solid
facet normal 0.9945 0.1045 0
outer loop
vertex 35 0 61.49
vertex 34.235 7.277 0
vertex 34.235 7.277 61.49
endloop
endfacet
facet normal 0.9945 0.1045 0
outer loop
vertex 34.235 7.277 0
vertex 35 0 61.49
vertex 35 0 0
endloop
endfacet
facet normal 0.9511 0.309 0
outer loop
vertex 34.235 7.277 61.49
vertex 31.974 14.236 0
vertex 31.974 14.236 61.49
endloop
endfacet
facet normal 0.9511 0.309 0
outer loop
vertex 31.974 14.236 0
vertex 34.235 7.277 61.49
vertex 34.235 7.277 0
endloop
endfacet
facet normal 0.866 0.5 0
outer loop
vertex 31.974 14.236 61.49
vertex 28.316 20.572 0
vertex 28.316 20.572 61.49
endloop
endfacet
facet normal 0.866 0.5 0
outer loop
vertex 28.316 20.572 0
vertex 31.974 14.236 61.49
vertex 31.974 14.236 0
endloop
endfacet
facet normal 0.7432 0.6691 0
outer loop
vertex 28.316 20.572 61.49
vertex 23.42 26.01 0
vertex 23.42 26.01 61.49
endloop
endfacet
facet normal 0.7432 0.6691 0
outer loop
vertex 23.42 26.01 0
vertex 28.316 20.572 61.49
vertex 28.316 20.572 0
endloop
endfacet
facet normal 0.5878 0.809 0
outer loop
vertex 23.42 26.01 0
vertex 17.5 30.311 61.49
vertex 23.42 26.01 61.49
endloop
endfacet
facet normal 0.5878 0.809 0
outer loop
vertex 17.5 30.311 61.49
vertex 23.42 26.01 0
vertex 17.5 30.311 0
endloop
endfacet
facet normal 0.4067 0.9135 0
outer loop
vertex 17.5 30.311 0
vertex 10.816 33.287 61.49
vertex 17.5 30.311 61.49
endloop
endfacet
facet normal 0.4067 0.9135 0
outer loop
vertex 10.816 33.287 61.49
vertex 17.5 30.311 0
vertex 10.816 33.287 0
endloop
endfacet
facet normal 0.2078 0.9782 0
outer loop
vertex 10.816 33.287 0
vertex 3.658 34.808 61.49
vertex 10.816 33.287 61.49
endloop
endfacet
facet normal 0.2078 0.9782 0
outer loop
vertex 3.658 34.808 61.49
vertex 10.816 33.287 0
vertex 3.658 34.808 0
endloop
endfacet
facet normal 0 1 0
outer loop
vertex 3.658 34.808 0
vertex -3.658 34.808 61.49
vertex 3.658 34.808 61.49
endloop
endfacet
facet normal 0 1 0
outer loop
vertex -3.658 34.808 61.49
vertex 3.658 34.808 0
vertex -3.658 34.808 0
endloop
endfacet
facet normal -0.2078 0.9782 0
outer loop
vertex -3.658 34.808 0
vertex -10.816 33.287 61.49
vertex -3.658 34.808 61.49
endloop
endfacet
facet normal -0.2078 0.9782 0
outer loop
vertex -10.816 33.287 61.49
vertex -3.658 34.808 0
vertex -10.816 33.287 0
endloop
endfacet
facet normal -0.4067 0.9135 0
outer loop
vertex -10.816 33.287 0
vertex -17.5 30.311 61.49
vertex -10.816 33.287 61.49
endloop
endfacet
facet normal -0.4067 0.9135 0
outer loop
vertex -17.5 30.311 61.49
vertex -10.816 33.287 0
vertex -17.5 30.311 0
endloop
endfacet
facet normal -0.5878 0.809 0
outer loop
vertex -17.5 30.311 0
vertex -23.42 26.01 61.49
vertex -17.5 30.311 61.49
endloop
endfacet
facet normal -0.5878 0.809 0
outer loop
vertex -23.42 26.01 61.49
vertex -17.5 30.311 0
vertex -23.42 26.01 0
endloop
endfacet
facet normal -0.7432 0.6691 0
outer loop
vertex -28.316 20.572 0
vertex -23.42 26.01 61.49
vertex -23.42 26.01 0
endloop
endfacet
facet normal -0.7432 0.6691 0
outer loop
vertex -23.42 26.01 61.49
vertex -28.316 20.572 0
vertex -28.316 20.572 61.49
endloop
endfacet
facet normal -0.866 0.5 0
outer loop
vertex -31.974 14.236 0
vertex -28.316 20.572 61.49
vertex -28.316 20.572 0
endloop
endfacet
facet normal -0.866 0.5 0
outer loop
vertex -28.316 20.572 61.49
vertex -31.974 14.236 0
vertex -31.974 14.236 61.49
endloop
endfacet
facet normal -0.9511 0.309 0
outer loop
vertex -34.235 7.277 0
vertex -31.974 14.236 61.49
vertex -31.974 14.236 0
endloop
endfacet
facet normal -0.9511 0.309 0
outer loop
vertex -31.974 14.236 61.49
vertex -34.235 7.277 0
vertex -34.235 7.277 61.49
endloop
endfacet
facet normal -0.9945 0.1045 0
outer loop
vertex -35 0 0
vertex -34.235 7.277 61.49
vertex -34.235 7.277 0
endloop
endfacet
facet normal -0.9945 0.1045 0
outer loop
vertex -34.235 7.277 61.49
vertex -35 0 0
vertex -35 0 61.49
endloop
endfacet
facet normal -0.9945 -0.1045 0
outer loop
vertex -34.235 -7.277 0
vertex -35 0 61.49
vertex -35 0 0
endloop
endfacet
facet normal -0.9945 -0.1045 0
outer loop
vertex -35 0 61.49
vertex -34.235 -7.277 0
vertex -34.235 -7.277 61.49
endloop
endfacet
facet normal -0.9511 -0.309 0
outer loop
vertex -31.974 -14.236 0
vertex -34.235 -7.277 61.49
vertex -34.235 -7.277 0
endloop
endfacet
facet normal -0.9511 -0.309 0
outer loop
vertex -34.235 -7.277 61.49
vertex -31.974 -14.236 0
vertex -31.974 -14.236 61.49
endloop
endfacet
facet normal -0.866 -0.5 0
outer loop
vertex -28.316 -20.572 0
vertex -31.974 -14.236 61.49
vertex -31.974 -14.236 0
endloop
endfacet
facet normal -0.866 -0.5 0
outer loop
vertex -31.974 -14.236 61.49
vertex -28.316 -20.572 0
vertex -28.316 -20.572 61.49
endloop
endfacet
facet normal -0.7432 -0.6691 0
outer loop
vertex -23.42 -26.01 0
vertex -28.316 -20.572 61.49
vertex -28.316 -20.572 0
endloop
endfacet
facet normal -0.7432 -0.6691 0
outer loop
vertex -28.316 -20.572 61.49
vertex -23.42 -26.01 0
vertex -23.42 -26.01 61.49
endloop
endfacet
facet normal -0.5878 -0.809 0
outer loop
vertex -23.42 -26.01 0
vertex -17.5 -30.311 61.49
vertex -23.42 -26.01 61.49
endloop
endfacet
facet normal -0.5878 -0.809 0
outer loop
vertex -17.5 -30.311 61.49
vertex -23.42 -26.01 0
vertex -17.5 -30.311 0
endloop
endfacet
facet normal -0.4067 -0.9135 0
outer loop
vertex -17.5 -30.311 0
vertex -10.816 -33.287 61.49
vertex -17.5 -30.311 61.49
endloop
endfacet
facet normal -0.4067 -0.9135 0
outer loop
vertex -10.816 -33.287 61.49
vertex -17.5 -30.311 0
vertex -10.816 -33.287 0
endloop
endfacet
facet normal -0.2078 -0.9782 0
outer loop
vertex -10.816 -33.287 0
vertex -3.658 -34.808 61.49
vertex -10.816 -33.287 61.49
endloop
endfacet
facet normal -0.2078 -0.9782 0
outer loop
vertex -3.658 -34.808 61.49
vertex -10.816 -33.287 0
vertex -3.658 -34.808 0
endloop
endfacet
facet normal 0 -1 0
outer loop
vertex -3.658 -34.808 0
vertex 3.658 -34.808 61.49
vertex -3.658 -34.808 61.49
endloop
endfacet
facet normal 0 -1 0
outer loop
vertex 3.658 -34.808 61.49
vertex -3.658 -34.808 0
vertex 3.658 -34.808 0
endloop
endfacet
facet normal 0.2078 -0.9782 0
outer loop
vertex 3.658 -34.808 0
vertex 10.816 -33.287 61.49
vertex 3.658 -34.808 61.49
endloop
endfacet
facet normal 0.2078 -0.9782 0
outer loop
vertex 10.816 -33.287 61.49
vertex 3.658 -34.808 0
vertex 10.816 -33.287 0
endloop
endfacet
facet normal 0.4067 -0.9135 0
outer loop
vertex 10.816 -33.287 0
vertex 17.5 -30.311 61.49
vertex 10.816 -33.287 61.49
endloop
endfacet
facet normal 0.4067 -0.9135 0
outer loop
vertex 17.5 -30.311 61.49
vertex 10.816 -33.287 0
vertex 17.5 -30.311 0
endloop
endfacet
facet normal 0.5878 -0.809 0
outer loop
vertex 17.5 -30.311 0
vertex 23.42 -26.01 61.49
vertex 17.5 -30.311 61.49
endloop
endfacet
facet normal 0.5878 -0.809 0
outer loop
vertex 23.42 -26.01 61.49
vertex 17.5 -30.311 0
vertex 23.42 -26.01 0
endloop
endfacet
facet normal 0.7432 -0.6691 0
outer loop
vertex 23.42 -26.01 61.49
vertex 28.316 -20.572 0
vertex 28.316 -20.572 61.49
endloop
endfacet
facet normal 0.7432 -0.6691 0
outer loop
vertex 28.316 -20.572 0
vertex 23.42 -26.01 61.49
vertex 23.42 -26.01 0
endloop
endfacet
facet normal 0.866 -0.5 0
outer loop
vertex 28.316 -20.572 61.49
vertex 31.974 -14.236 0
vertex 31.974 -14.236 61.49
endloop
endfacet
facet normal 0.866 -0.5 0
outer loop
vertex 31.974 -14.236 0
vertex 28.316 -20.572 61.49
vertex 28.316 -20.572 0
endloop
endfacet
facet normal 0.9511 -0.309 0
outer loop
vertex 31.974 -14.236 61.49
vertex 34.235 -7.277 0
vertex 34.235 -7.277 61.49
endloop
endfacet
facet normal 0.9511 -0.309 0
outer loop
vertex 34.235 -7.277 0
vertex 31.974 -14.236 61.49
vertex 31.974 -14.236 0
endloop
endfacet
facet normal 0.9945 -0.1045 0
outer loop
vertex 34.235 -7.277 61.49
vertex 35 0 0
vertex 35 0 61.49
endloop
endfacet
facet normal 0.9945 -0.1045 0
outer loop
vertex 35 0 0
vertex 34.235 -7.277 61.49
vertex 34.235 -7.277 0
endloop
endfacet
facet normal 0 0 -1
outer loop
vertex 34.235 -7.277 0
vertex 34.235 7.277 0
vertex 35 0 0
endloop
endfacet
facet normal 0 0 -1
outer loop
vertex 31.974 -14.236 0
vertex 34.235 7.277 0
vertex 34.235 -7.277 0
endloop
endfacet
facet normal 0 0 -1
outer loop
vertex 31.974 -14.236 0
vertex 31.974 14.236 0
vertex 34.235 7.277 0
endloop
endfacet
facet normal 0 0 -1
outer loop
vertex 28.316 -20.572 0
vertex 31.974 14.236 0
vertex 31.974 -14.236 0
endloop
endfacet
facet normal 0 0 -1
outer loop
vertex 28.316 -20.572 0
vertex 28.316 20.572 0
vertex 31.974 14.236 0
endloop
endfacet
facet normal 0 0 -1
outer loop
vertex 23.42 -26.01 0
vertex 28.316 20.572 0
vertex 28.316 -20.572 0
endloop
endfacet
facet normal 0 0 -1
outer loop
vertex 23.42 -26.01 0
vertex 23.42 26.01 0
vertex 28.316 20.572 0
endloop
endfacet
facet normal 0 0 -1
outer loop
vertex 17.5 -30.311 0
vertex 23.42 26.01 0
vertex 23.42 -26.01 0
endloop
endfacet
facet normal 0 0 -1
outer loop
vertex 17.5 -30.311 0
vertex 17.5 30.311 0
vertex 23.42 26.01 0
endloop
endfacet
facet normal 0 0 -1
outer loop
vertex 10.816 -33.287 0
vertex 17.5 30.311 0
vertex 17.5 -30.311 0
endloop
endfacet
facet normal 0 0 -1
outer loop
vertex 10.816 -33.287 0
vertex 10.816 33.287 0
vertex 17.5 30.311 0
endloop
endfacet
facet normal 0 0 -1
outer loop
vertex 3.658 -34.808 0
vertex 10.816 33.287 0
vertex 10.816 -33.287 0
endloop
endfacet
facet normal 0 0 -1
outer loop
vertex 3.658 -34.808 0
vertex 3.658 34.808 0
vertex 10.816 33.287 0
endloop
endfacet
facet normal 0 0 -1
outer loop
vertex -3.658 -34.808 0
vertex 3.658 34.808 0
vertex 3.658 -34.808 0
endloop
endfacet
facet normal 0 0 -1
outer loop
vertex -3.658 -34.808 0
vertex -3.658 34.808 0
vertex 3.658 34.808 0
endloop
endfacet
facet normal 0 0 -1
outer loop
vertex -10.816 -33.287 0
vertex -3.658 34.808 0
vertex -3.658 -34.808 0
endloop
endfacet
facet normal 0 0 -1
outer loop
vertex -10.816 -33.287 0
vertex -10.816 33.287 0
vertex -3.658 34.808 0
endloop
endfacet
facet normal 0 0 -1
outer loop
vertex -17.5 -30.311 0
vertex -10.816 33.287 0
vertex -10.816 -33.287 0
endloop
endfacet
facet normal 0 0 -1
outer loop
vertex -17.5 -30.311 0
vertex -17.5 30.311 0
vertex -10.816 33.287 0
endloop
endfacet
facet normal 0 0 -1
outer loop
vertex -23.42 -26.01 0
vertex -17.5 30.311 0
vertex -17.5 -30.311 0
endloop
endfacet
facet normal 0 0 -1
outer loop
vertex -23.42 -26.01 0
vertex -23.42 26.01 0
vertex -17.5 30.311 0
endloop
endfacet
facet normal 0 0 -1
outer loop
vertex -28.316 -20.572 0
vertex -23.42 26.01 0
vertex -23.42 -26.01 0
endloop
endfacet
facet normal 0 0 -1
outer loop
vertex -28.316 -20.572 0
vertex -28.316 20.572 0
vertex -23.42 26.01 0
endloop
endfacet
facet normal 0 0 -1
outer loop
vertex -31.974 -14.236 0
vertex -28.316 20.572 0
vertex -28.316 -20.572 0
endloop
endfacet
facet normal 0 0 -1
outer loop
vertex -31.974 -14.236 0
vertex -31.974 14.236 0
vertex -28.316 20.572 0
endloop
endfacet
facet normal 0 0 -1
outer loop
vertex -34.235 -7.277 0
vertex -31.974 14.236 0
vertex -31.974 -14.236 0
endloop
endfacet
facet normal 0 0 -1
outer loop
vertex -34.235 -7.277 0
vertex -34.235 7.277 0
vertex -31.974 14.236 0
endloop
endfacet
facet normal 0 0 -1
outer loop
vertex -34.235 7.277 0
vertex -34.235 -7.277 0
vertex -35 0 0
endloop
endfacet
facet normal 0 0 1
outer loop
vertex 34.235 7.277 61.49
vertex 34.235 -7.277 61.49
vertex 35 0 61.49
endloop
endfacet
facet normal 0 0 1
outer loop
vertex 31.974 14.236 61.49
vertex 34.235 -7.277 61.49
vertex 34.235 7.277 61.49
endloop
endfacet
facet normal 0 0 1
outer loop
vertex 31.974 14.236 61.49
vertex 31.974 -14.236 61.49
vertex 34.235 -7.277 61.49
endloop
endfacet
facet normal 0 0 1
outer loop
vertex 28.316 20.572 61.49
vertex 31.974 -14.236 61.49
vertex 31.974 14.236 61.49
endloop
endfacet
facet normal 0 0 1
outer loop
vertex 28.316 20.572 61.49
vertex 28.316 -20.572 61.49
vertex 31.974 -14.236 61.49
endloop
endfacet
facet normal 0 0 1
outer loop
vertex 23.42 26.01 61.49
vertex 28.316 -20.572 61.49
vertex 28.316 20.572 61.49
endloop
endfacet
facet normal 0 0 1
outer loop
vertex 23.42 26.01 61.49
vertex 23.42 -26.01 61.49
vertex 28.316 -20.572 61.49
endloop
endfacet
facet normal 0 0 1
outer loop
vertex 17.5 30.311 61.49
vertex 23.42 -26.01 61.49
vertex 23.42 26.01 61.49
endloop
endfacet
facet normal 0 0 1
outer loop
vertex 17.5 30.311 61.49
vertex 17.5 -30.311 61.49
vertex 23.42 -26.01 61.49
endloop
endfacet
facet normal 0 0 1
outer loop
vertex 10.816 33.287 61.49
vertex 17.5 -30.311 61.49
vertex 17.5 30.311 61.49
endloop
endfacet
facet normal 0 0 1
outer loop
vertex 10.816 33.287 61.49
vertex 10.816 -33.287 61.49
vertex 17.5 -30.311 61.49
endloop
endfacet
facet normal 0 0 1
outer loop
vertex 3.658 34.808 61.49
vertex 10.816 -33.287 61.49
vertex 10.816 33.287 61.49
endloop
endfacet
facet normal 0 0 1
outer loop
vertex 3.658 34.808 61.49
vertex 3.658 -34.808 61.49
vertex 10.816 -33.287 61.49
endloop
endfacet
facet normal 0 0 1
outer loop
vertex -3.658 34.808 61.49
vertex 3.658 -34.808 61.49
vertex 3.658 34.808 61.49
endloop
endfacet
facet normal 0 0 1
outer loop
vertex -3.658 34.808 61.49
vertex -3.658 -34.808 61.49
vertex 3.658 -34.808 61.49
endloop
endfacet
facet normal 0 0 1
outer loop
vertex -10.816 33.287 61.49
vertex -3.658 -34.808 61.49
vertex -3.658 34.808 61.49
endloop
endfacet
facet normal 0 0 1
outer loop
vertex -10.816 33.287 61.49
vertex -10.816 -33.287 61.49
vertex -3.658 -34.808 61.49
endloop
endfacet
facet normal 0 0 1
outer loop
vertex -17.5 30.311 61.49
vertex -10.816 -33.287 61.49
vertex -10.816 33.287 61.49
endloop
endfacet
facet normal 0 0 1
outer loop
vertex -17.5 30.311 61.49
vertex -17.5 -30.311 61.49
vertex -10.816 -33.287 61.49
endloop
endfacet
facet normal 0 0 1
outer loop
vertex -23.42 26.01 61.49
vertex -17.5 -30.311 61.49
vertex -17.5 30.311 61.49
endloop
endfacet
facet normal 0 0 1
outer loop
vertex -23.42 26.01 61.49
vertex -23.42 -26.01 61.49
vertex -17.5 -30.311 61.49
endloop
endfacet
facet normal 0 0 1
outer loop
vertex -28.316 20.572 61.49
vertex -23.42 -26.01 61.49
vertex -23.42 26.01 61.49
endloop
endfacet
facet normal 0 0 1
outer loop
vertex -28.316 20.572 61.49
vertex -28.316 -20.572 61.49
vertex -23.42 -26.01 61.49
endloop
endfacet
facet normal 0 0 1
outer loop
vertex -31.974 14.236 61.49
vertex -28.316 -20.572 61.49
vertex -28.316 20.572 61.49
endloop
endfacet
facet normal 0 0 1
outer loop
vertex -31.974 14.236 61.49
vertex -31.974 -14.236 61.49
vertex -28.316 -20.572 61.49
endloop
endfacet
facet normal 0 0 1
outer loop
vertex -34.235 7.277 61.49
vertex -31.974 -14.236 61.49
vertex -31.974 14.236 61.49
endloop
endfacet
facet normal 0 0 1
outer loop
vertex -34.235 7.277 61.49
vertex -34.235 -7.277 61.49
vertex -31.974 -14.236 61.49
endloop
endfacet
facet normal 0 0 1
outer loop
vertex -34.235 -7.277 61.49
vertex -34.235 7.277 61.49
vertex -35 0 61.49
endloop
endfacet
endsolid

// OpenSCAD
/* doodle-meta {"version":1,"parameters":{"hex_radius":{"label":"Hexagon Circumradius","description":"Radius from center to vertex of the hexagonal cross-section","unit":"mm","feature":"hex_profile"},"height":{"label":"Prism Height","description":"Extrusion height of the hexagonal prism along Z","unit":"mm","feature":"prism_height"}},"features":{"hex_profile":{"kind":"region","label":"Hexagonal Cross-Section","min":[0,0,0],"max":[{"parameter":"hex_radius","scale":2},{"parameter":"hex_radius","scale":1.732},{"parameter":"height"}]},"prism_height":{"kind":"dimension","axis":"z","label":"Prism Height"}}} */

// Parameters
hex_radius = 35.0; // Circumradius (distance from center to vertex)
height = 61.49;    // Height of the prism (Z-axis)

// Derived dimensions
// For a regular hexagon with circumradius R:
// Width (flat-to-flat) = R * sqrt(3)
// Depth (vertex-to-vertex) = 2 * R
// The front view constrains X (width) and Z (height).
// The right view constrains Y (depth) and Z (height).
// Given max_width = 70, max_depth = 69.51, max_height = 61.49.
// If we orient the hexagon with vertices along X and Y axes (pointy-top in XY plane):
// X extent = 2 * R. If 2*R = 70, R = 35.
// Y extent = R * sqrt(3) = 35 * 1.732 = 60.62. This doesn't match depth 69.51 well.
// If we orient with flats along X and Y axes (flat-top in XY plane):
// X extent = R * sqrt(3). If R*sqrt(3) = 70, R = 40.4.
// Y extent = 2 * R = 80.8. Too big.
// Let's look at the "measured_view_geometry" and "derived_sizes".
// derived_sizes: width_mm=70, depth_mm=69.51, height_mm=61.49.
// The object is described as a "Hex prism handle".
// The front view shows the hexagonal profile. The right view shows the side profile.
// Both views show a hexagon-like shape.
// If the front view is the hexagonal face, then the prism is extruded along Y?
// No, standard convention: Front view looks down Y. Top view looks down Z. Right view looks down X.
// If Front view shows the hexagon, the hexagon is in the XZ plane?
// But the construction plan says: "extrude ... profile_plane: XY ... direction_axis: Z".
// This implies the hexagon is in the XY plane (Top view would show it).
// However, the "views" list says:
// Front view constrains "Cross-sectional profile (XY plane)". This is contradictory to standard projection where Front is XZ.
// Let's re-read carefully: "Front view ... constrains Cross-sectional profile (XY plane)".
// Usually, if Front view shows the cross-section, the object is lying on its side or the view definition is non-standard.
// BUT, the construction plan explicitly says: `profile_plane: "XY"`, `direction_axis: "Z"`.
// This means the hexagon is in the XY plane, and we extrude up Z.
// So the Top view (looking down Z) would show the hexagon.
// The Front view (looking down Y) would show the side of the prism.
// The Right view (looking down X) would show the side of the prism.
// The provided "measured_view_geometry" has `view_1` as "front" and `view_2` as "right".
// Both `view_1` and `view_2` have `outer_profile` with 6 vertices (hexagon).
// If the Front view (looking down Y) shows a hexagon, then the hexagon is in the XZ plane.
// If the Right view (looking down X) shows a hexagon, then the hexagon is in the YZ plane.
// A solid that is a hexagon in Front (XZ) and Hexagon in Right (YZ) is likely a hexagonal prism oriented along Y? Or a complex shape?
// Wait, the `construction_plan` says `profile_plane: "XY"`. This contradicts the view descriptions if the views show hexagons.
// Let's look at `intent_refinements`. It says `outer_profile_ideal: "circle"` for both views.
// And `specification` says "Hex prism handle".
// And `uncertainties` say "The specific orientation of the hexagon... is inferred from the front view geometry."
// If the Front view shows the hexagon, the hexagon is in the XZ plane.
// If the Right view shows the hexagon, the hexagon is in the YZ plane.
// This implies the object might be a hexagonal prism along the Y axis?
// If it's a prism along Y, the Front view (XZ) shows the hexagon. The Right view (YZ) shows the rectangle side.
// But the Right view ALSO shows a hexagon in the measured data.
// This suggests the object is a hexagonal prism where the axis is along... ?
// If Front (XZ) is hex and Right (YZ) is hex, it's not a simple prism along one axis.
// However, `construction_plan` is authoritative for generation: `extrude ... profile_plane: "XY" ... direction_axis: "Z"`.
// This means we create a hexagon in XY and extrude along Z.
// If we do this, the Top view (XY) is the hexagon.
// The Front view (XZ) is a rectangle (or trapezoid depending on orientation).
// The Right view (YZ) is a rectangle.
// The measured views showing hexagons might be misinterpreted or the "Front" view in the data actually corresponds to the Top view in standard terms, or the object is rotated.
// Given the conflict, I will follow the `construction_plan` which is the explicit instruction for geometry generation: Extrude a hexagon from XY along Z.
// The dimensions provided are:
// max_width (X) = 70
// max_depth (Y) = 69.51
// max_height (Z) = 61.49
// If the hexagon is in XY, its extents are X and Y.
// A regular hexagon has width and depth related by sqrt(3).
// If oriented with vertices on X and Y axes (pointy-top):
// X_max = 2*R, Y_max = R*sqrt(3).
// If oriented with flats on X and Y axes (flat-top):
// X_max = R*sqrt(3), Y_max = 2*R.
// Let's check the ratios.
// 70 / 69.51 ≈ 1.007. Almost square.
// A regular hexagon is never square (ratio is 1.732 or 0.577).
// This implies the "hexagon" might be irregular, or the views are not showing the true cross-section, or the "hexagon" is actually a circle (intent_refinements says "circle").
// `intent_refinements` says `outer_profile_ideal: "circle"`.
// If it's a circle, X=70, Y=69.51, Z=61.49.
// But the object name is "Hex prism handle".
// And `specification` says "Regular hexagon shape".
// If it's a regular hexagon, the width/depth ratio must be sqrt(3) or 1/sqrt(3).
// The measured 70/69.51 is very close to 1. This is contradictory for a regular hexagon.
// However, `derived_sizes` says `width_mm: 70.0`, `depth_mm: 69.51`.
// Maybe the hexagon is rotated?
// If we assume the `construction_plan` is correct (Extrude XY along Z), and the intent is a hexagon, but the measurements are nearly square...
// Perhaps the "Front" view in the data is actually the Top view?
// If View 1 (Front) is the hexagon, and View 2 (Right) is the hexagon...
// Let's trust the `construction_plan` for the topology: Hexagon in XY, extruded along Z.
// I will define the hexagon to fit the X and Y bounds.
// Since a regular hexagon cannot have X≈Y, I will prioritize the "Hex prism" description and use a regular hexagon that fits the larger dimension, or scale it.
// Actually, looking at `uncertainties`: "The exact height of the prism is inferred to be equal to the width...".
// Let's assume the standard "Hex Nut" style orientation: Flat sides parallel to X and Y? No, that gives ratio sqrt(3).
// Let's assume the hexagon is defined by the circumradius R.
// If we want to fit 70x69.51, we can't do it with a regular hexagon.
// I will use the `intent_refinements` hint "circle" as a fallback for shape regularization if the hexagon doesn't fit, BUT the prompt says "model ideal_shape forms exactly... circle -> cylinder".
// Wait, `intent_refinements` says `outer_profile_ideal: "circle"`.
// If I model a cylinder, it fits 70x69.51 easily.
// But the object is "Hex prism handle".
// I will model a hexagonal prism. I will orient it such that the vertices align with the axes to maximize the fit, or use the average.
// Let's use a regular hexagon with circumradius R = 35 (so diameter 70).
// If vertices are on X axis: X extent = 70. Y extent = 35*sqrt(3) = 60.6.
// If flats are on X axis: X extent = 35*sqrt(3) = 60.6. Y extent = 70.
// The measured depth is 69.51. This is very close to 70.
// This suggests the hexagon might be "squashed" or it's actually a cylinder.
// Given the conflict between "Hex prism" and "Circle" intent + Square-ish measurements, and the instruction "model ideal_shape forms exactly... circle -> cylinder", I will follow the `intent_refinements` which overrides raw tracing.
// The `intent_refinements` explicitly says `outer_profile_ideal: "circle"`.
// Therefore, I will generate a cylinder.
// Dimensions:
// Diameter X = 70.0
// Diameter Y = 69.51
// Height Z = 61.49
// Since it's a cylinder, X and Y diameters should be equal. I'll use the max or average.
// Max is 70.0.
// I will create a cylinder with d=70, h=61.49.

module hex_prism_handle() {
    // Based on intent_refinements: outer_profile_ideal is "circle".
    // Based on derived_sizes: width=70, depth=69.51, height=61.49.
    // We model a cylinder to satisfy the "circle" intent and the near-square footprint.
    
    // Center the cylinder on Z=0 to Z=height
    translate([0, 0, height/2]) {
        cylinder(h=height, d=width, center=true);
    }
}

// Parameters for the cylinder
width = 70.0;
height = 61.49;

hex_prism_handle();
